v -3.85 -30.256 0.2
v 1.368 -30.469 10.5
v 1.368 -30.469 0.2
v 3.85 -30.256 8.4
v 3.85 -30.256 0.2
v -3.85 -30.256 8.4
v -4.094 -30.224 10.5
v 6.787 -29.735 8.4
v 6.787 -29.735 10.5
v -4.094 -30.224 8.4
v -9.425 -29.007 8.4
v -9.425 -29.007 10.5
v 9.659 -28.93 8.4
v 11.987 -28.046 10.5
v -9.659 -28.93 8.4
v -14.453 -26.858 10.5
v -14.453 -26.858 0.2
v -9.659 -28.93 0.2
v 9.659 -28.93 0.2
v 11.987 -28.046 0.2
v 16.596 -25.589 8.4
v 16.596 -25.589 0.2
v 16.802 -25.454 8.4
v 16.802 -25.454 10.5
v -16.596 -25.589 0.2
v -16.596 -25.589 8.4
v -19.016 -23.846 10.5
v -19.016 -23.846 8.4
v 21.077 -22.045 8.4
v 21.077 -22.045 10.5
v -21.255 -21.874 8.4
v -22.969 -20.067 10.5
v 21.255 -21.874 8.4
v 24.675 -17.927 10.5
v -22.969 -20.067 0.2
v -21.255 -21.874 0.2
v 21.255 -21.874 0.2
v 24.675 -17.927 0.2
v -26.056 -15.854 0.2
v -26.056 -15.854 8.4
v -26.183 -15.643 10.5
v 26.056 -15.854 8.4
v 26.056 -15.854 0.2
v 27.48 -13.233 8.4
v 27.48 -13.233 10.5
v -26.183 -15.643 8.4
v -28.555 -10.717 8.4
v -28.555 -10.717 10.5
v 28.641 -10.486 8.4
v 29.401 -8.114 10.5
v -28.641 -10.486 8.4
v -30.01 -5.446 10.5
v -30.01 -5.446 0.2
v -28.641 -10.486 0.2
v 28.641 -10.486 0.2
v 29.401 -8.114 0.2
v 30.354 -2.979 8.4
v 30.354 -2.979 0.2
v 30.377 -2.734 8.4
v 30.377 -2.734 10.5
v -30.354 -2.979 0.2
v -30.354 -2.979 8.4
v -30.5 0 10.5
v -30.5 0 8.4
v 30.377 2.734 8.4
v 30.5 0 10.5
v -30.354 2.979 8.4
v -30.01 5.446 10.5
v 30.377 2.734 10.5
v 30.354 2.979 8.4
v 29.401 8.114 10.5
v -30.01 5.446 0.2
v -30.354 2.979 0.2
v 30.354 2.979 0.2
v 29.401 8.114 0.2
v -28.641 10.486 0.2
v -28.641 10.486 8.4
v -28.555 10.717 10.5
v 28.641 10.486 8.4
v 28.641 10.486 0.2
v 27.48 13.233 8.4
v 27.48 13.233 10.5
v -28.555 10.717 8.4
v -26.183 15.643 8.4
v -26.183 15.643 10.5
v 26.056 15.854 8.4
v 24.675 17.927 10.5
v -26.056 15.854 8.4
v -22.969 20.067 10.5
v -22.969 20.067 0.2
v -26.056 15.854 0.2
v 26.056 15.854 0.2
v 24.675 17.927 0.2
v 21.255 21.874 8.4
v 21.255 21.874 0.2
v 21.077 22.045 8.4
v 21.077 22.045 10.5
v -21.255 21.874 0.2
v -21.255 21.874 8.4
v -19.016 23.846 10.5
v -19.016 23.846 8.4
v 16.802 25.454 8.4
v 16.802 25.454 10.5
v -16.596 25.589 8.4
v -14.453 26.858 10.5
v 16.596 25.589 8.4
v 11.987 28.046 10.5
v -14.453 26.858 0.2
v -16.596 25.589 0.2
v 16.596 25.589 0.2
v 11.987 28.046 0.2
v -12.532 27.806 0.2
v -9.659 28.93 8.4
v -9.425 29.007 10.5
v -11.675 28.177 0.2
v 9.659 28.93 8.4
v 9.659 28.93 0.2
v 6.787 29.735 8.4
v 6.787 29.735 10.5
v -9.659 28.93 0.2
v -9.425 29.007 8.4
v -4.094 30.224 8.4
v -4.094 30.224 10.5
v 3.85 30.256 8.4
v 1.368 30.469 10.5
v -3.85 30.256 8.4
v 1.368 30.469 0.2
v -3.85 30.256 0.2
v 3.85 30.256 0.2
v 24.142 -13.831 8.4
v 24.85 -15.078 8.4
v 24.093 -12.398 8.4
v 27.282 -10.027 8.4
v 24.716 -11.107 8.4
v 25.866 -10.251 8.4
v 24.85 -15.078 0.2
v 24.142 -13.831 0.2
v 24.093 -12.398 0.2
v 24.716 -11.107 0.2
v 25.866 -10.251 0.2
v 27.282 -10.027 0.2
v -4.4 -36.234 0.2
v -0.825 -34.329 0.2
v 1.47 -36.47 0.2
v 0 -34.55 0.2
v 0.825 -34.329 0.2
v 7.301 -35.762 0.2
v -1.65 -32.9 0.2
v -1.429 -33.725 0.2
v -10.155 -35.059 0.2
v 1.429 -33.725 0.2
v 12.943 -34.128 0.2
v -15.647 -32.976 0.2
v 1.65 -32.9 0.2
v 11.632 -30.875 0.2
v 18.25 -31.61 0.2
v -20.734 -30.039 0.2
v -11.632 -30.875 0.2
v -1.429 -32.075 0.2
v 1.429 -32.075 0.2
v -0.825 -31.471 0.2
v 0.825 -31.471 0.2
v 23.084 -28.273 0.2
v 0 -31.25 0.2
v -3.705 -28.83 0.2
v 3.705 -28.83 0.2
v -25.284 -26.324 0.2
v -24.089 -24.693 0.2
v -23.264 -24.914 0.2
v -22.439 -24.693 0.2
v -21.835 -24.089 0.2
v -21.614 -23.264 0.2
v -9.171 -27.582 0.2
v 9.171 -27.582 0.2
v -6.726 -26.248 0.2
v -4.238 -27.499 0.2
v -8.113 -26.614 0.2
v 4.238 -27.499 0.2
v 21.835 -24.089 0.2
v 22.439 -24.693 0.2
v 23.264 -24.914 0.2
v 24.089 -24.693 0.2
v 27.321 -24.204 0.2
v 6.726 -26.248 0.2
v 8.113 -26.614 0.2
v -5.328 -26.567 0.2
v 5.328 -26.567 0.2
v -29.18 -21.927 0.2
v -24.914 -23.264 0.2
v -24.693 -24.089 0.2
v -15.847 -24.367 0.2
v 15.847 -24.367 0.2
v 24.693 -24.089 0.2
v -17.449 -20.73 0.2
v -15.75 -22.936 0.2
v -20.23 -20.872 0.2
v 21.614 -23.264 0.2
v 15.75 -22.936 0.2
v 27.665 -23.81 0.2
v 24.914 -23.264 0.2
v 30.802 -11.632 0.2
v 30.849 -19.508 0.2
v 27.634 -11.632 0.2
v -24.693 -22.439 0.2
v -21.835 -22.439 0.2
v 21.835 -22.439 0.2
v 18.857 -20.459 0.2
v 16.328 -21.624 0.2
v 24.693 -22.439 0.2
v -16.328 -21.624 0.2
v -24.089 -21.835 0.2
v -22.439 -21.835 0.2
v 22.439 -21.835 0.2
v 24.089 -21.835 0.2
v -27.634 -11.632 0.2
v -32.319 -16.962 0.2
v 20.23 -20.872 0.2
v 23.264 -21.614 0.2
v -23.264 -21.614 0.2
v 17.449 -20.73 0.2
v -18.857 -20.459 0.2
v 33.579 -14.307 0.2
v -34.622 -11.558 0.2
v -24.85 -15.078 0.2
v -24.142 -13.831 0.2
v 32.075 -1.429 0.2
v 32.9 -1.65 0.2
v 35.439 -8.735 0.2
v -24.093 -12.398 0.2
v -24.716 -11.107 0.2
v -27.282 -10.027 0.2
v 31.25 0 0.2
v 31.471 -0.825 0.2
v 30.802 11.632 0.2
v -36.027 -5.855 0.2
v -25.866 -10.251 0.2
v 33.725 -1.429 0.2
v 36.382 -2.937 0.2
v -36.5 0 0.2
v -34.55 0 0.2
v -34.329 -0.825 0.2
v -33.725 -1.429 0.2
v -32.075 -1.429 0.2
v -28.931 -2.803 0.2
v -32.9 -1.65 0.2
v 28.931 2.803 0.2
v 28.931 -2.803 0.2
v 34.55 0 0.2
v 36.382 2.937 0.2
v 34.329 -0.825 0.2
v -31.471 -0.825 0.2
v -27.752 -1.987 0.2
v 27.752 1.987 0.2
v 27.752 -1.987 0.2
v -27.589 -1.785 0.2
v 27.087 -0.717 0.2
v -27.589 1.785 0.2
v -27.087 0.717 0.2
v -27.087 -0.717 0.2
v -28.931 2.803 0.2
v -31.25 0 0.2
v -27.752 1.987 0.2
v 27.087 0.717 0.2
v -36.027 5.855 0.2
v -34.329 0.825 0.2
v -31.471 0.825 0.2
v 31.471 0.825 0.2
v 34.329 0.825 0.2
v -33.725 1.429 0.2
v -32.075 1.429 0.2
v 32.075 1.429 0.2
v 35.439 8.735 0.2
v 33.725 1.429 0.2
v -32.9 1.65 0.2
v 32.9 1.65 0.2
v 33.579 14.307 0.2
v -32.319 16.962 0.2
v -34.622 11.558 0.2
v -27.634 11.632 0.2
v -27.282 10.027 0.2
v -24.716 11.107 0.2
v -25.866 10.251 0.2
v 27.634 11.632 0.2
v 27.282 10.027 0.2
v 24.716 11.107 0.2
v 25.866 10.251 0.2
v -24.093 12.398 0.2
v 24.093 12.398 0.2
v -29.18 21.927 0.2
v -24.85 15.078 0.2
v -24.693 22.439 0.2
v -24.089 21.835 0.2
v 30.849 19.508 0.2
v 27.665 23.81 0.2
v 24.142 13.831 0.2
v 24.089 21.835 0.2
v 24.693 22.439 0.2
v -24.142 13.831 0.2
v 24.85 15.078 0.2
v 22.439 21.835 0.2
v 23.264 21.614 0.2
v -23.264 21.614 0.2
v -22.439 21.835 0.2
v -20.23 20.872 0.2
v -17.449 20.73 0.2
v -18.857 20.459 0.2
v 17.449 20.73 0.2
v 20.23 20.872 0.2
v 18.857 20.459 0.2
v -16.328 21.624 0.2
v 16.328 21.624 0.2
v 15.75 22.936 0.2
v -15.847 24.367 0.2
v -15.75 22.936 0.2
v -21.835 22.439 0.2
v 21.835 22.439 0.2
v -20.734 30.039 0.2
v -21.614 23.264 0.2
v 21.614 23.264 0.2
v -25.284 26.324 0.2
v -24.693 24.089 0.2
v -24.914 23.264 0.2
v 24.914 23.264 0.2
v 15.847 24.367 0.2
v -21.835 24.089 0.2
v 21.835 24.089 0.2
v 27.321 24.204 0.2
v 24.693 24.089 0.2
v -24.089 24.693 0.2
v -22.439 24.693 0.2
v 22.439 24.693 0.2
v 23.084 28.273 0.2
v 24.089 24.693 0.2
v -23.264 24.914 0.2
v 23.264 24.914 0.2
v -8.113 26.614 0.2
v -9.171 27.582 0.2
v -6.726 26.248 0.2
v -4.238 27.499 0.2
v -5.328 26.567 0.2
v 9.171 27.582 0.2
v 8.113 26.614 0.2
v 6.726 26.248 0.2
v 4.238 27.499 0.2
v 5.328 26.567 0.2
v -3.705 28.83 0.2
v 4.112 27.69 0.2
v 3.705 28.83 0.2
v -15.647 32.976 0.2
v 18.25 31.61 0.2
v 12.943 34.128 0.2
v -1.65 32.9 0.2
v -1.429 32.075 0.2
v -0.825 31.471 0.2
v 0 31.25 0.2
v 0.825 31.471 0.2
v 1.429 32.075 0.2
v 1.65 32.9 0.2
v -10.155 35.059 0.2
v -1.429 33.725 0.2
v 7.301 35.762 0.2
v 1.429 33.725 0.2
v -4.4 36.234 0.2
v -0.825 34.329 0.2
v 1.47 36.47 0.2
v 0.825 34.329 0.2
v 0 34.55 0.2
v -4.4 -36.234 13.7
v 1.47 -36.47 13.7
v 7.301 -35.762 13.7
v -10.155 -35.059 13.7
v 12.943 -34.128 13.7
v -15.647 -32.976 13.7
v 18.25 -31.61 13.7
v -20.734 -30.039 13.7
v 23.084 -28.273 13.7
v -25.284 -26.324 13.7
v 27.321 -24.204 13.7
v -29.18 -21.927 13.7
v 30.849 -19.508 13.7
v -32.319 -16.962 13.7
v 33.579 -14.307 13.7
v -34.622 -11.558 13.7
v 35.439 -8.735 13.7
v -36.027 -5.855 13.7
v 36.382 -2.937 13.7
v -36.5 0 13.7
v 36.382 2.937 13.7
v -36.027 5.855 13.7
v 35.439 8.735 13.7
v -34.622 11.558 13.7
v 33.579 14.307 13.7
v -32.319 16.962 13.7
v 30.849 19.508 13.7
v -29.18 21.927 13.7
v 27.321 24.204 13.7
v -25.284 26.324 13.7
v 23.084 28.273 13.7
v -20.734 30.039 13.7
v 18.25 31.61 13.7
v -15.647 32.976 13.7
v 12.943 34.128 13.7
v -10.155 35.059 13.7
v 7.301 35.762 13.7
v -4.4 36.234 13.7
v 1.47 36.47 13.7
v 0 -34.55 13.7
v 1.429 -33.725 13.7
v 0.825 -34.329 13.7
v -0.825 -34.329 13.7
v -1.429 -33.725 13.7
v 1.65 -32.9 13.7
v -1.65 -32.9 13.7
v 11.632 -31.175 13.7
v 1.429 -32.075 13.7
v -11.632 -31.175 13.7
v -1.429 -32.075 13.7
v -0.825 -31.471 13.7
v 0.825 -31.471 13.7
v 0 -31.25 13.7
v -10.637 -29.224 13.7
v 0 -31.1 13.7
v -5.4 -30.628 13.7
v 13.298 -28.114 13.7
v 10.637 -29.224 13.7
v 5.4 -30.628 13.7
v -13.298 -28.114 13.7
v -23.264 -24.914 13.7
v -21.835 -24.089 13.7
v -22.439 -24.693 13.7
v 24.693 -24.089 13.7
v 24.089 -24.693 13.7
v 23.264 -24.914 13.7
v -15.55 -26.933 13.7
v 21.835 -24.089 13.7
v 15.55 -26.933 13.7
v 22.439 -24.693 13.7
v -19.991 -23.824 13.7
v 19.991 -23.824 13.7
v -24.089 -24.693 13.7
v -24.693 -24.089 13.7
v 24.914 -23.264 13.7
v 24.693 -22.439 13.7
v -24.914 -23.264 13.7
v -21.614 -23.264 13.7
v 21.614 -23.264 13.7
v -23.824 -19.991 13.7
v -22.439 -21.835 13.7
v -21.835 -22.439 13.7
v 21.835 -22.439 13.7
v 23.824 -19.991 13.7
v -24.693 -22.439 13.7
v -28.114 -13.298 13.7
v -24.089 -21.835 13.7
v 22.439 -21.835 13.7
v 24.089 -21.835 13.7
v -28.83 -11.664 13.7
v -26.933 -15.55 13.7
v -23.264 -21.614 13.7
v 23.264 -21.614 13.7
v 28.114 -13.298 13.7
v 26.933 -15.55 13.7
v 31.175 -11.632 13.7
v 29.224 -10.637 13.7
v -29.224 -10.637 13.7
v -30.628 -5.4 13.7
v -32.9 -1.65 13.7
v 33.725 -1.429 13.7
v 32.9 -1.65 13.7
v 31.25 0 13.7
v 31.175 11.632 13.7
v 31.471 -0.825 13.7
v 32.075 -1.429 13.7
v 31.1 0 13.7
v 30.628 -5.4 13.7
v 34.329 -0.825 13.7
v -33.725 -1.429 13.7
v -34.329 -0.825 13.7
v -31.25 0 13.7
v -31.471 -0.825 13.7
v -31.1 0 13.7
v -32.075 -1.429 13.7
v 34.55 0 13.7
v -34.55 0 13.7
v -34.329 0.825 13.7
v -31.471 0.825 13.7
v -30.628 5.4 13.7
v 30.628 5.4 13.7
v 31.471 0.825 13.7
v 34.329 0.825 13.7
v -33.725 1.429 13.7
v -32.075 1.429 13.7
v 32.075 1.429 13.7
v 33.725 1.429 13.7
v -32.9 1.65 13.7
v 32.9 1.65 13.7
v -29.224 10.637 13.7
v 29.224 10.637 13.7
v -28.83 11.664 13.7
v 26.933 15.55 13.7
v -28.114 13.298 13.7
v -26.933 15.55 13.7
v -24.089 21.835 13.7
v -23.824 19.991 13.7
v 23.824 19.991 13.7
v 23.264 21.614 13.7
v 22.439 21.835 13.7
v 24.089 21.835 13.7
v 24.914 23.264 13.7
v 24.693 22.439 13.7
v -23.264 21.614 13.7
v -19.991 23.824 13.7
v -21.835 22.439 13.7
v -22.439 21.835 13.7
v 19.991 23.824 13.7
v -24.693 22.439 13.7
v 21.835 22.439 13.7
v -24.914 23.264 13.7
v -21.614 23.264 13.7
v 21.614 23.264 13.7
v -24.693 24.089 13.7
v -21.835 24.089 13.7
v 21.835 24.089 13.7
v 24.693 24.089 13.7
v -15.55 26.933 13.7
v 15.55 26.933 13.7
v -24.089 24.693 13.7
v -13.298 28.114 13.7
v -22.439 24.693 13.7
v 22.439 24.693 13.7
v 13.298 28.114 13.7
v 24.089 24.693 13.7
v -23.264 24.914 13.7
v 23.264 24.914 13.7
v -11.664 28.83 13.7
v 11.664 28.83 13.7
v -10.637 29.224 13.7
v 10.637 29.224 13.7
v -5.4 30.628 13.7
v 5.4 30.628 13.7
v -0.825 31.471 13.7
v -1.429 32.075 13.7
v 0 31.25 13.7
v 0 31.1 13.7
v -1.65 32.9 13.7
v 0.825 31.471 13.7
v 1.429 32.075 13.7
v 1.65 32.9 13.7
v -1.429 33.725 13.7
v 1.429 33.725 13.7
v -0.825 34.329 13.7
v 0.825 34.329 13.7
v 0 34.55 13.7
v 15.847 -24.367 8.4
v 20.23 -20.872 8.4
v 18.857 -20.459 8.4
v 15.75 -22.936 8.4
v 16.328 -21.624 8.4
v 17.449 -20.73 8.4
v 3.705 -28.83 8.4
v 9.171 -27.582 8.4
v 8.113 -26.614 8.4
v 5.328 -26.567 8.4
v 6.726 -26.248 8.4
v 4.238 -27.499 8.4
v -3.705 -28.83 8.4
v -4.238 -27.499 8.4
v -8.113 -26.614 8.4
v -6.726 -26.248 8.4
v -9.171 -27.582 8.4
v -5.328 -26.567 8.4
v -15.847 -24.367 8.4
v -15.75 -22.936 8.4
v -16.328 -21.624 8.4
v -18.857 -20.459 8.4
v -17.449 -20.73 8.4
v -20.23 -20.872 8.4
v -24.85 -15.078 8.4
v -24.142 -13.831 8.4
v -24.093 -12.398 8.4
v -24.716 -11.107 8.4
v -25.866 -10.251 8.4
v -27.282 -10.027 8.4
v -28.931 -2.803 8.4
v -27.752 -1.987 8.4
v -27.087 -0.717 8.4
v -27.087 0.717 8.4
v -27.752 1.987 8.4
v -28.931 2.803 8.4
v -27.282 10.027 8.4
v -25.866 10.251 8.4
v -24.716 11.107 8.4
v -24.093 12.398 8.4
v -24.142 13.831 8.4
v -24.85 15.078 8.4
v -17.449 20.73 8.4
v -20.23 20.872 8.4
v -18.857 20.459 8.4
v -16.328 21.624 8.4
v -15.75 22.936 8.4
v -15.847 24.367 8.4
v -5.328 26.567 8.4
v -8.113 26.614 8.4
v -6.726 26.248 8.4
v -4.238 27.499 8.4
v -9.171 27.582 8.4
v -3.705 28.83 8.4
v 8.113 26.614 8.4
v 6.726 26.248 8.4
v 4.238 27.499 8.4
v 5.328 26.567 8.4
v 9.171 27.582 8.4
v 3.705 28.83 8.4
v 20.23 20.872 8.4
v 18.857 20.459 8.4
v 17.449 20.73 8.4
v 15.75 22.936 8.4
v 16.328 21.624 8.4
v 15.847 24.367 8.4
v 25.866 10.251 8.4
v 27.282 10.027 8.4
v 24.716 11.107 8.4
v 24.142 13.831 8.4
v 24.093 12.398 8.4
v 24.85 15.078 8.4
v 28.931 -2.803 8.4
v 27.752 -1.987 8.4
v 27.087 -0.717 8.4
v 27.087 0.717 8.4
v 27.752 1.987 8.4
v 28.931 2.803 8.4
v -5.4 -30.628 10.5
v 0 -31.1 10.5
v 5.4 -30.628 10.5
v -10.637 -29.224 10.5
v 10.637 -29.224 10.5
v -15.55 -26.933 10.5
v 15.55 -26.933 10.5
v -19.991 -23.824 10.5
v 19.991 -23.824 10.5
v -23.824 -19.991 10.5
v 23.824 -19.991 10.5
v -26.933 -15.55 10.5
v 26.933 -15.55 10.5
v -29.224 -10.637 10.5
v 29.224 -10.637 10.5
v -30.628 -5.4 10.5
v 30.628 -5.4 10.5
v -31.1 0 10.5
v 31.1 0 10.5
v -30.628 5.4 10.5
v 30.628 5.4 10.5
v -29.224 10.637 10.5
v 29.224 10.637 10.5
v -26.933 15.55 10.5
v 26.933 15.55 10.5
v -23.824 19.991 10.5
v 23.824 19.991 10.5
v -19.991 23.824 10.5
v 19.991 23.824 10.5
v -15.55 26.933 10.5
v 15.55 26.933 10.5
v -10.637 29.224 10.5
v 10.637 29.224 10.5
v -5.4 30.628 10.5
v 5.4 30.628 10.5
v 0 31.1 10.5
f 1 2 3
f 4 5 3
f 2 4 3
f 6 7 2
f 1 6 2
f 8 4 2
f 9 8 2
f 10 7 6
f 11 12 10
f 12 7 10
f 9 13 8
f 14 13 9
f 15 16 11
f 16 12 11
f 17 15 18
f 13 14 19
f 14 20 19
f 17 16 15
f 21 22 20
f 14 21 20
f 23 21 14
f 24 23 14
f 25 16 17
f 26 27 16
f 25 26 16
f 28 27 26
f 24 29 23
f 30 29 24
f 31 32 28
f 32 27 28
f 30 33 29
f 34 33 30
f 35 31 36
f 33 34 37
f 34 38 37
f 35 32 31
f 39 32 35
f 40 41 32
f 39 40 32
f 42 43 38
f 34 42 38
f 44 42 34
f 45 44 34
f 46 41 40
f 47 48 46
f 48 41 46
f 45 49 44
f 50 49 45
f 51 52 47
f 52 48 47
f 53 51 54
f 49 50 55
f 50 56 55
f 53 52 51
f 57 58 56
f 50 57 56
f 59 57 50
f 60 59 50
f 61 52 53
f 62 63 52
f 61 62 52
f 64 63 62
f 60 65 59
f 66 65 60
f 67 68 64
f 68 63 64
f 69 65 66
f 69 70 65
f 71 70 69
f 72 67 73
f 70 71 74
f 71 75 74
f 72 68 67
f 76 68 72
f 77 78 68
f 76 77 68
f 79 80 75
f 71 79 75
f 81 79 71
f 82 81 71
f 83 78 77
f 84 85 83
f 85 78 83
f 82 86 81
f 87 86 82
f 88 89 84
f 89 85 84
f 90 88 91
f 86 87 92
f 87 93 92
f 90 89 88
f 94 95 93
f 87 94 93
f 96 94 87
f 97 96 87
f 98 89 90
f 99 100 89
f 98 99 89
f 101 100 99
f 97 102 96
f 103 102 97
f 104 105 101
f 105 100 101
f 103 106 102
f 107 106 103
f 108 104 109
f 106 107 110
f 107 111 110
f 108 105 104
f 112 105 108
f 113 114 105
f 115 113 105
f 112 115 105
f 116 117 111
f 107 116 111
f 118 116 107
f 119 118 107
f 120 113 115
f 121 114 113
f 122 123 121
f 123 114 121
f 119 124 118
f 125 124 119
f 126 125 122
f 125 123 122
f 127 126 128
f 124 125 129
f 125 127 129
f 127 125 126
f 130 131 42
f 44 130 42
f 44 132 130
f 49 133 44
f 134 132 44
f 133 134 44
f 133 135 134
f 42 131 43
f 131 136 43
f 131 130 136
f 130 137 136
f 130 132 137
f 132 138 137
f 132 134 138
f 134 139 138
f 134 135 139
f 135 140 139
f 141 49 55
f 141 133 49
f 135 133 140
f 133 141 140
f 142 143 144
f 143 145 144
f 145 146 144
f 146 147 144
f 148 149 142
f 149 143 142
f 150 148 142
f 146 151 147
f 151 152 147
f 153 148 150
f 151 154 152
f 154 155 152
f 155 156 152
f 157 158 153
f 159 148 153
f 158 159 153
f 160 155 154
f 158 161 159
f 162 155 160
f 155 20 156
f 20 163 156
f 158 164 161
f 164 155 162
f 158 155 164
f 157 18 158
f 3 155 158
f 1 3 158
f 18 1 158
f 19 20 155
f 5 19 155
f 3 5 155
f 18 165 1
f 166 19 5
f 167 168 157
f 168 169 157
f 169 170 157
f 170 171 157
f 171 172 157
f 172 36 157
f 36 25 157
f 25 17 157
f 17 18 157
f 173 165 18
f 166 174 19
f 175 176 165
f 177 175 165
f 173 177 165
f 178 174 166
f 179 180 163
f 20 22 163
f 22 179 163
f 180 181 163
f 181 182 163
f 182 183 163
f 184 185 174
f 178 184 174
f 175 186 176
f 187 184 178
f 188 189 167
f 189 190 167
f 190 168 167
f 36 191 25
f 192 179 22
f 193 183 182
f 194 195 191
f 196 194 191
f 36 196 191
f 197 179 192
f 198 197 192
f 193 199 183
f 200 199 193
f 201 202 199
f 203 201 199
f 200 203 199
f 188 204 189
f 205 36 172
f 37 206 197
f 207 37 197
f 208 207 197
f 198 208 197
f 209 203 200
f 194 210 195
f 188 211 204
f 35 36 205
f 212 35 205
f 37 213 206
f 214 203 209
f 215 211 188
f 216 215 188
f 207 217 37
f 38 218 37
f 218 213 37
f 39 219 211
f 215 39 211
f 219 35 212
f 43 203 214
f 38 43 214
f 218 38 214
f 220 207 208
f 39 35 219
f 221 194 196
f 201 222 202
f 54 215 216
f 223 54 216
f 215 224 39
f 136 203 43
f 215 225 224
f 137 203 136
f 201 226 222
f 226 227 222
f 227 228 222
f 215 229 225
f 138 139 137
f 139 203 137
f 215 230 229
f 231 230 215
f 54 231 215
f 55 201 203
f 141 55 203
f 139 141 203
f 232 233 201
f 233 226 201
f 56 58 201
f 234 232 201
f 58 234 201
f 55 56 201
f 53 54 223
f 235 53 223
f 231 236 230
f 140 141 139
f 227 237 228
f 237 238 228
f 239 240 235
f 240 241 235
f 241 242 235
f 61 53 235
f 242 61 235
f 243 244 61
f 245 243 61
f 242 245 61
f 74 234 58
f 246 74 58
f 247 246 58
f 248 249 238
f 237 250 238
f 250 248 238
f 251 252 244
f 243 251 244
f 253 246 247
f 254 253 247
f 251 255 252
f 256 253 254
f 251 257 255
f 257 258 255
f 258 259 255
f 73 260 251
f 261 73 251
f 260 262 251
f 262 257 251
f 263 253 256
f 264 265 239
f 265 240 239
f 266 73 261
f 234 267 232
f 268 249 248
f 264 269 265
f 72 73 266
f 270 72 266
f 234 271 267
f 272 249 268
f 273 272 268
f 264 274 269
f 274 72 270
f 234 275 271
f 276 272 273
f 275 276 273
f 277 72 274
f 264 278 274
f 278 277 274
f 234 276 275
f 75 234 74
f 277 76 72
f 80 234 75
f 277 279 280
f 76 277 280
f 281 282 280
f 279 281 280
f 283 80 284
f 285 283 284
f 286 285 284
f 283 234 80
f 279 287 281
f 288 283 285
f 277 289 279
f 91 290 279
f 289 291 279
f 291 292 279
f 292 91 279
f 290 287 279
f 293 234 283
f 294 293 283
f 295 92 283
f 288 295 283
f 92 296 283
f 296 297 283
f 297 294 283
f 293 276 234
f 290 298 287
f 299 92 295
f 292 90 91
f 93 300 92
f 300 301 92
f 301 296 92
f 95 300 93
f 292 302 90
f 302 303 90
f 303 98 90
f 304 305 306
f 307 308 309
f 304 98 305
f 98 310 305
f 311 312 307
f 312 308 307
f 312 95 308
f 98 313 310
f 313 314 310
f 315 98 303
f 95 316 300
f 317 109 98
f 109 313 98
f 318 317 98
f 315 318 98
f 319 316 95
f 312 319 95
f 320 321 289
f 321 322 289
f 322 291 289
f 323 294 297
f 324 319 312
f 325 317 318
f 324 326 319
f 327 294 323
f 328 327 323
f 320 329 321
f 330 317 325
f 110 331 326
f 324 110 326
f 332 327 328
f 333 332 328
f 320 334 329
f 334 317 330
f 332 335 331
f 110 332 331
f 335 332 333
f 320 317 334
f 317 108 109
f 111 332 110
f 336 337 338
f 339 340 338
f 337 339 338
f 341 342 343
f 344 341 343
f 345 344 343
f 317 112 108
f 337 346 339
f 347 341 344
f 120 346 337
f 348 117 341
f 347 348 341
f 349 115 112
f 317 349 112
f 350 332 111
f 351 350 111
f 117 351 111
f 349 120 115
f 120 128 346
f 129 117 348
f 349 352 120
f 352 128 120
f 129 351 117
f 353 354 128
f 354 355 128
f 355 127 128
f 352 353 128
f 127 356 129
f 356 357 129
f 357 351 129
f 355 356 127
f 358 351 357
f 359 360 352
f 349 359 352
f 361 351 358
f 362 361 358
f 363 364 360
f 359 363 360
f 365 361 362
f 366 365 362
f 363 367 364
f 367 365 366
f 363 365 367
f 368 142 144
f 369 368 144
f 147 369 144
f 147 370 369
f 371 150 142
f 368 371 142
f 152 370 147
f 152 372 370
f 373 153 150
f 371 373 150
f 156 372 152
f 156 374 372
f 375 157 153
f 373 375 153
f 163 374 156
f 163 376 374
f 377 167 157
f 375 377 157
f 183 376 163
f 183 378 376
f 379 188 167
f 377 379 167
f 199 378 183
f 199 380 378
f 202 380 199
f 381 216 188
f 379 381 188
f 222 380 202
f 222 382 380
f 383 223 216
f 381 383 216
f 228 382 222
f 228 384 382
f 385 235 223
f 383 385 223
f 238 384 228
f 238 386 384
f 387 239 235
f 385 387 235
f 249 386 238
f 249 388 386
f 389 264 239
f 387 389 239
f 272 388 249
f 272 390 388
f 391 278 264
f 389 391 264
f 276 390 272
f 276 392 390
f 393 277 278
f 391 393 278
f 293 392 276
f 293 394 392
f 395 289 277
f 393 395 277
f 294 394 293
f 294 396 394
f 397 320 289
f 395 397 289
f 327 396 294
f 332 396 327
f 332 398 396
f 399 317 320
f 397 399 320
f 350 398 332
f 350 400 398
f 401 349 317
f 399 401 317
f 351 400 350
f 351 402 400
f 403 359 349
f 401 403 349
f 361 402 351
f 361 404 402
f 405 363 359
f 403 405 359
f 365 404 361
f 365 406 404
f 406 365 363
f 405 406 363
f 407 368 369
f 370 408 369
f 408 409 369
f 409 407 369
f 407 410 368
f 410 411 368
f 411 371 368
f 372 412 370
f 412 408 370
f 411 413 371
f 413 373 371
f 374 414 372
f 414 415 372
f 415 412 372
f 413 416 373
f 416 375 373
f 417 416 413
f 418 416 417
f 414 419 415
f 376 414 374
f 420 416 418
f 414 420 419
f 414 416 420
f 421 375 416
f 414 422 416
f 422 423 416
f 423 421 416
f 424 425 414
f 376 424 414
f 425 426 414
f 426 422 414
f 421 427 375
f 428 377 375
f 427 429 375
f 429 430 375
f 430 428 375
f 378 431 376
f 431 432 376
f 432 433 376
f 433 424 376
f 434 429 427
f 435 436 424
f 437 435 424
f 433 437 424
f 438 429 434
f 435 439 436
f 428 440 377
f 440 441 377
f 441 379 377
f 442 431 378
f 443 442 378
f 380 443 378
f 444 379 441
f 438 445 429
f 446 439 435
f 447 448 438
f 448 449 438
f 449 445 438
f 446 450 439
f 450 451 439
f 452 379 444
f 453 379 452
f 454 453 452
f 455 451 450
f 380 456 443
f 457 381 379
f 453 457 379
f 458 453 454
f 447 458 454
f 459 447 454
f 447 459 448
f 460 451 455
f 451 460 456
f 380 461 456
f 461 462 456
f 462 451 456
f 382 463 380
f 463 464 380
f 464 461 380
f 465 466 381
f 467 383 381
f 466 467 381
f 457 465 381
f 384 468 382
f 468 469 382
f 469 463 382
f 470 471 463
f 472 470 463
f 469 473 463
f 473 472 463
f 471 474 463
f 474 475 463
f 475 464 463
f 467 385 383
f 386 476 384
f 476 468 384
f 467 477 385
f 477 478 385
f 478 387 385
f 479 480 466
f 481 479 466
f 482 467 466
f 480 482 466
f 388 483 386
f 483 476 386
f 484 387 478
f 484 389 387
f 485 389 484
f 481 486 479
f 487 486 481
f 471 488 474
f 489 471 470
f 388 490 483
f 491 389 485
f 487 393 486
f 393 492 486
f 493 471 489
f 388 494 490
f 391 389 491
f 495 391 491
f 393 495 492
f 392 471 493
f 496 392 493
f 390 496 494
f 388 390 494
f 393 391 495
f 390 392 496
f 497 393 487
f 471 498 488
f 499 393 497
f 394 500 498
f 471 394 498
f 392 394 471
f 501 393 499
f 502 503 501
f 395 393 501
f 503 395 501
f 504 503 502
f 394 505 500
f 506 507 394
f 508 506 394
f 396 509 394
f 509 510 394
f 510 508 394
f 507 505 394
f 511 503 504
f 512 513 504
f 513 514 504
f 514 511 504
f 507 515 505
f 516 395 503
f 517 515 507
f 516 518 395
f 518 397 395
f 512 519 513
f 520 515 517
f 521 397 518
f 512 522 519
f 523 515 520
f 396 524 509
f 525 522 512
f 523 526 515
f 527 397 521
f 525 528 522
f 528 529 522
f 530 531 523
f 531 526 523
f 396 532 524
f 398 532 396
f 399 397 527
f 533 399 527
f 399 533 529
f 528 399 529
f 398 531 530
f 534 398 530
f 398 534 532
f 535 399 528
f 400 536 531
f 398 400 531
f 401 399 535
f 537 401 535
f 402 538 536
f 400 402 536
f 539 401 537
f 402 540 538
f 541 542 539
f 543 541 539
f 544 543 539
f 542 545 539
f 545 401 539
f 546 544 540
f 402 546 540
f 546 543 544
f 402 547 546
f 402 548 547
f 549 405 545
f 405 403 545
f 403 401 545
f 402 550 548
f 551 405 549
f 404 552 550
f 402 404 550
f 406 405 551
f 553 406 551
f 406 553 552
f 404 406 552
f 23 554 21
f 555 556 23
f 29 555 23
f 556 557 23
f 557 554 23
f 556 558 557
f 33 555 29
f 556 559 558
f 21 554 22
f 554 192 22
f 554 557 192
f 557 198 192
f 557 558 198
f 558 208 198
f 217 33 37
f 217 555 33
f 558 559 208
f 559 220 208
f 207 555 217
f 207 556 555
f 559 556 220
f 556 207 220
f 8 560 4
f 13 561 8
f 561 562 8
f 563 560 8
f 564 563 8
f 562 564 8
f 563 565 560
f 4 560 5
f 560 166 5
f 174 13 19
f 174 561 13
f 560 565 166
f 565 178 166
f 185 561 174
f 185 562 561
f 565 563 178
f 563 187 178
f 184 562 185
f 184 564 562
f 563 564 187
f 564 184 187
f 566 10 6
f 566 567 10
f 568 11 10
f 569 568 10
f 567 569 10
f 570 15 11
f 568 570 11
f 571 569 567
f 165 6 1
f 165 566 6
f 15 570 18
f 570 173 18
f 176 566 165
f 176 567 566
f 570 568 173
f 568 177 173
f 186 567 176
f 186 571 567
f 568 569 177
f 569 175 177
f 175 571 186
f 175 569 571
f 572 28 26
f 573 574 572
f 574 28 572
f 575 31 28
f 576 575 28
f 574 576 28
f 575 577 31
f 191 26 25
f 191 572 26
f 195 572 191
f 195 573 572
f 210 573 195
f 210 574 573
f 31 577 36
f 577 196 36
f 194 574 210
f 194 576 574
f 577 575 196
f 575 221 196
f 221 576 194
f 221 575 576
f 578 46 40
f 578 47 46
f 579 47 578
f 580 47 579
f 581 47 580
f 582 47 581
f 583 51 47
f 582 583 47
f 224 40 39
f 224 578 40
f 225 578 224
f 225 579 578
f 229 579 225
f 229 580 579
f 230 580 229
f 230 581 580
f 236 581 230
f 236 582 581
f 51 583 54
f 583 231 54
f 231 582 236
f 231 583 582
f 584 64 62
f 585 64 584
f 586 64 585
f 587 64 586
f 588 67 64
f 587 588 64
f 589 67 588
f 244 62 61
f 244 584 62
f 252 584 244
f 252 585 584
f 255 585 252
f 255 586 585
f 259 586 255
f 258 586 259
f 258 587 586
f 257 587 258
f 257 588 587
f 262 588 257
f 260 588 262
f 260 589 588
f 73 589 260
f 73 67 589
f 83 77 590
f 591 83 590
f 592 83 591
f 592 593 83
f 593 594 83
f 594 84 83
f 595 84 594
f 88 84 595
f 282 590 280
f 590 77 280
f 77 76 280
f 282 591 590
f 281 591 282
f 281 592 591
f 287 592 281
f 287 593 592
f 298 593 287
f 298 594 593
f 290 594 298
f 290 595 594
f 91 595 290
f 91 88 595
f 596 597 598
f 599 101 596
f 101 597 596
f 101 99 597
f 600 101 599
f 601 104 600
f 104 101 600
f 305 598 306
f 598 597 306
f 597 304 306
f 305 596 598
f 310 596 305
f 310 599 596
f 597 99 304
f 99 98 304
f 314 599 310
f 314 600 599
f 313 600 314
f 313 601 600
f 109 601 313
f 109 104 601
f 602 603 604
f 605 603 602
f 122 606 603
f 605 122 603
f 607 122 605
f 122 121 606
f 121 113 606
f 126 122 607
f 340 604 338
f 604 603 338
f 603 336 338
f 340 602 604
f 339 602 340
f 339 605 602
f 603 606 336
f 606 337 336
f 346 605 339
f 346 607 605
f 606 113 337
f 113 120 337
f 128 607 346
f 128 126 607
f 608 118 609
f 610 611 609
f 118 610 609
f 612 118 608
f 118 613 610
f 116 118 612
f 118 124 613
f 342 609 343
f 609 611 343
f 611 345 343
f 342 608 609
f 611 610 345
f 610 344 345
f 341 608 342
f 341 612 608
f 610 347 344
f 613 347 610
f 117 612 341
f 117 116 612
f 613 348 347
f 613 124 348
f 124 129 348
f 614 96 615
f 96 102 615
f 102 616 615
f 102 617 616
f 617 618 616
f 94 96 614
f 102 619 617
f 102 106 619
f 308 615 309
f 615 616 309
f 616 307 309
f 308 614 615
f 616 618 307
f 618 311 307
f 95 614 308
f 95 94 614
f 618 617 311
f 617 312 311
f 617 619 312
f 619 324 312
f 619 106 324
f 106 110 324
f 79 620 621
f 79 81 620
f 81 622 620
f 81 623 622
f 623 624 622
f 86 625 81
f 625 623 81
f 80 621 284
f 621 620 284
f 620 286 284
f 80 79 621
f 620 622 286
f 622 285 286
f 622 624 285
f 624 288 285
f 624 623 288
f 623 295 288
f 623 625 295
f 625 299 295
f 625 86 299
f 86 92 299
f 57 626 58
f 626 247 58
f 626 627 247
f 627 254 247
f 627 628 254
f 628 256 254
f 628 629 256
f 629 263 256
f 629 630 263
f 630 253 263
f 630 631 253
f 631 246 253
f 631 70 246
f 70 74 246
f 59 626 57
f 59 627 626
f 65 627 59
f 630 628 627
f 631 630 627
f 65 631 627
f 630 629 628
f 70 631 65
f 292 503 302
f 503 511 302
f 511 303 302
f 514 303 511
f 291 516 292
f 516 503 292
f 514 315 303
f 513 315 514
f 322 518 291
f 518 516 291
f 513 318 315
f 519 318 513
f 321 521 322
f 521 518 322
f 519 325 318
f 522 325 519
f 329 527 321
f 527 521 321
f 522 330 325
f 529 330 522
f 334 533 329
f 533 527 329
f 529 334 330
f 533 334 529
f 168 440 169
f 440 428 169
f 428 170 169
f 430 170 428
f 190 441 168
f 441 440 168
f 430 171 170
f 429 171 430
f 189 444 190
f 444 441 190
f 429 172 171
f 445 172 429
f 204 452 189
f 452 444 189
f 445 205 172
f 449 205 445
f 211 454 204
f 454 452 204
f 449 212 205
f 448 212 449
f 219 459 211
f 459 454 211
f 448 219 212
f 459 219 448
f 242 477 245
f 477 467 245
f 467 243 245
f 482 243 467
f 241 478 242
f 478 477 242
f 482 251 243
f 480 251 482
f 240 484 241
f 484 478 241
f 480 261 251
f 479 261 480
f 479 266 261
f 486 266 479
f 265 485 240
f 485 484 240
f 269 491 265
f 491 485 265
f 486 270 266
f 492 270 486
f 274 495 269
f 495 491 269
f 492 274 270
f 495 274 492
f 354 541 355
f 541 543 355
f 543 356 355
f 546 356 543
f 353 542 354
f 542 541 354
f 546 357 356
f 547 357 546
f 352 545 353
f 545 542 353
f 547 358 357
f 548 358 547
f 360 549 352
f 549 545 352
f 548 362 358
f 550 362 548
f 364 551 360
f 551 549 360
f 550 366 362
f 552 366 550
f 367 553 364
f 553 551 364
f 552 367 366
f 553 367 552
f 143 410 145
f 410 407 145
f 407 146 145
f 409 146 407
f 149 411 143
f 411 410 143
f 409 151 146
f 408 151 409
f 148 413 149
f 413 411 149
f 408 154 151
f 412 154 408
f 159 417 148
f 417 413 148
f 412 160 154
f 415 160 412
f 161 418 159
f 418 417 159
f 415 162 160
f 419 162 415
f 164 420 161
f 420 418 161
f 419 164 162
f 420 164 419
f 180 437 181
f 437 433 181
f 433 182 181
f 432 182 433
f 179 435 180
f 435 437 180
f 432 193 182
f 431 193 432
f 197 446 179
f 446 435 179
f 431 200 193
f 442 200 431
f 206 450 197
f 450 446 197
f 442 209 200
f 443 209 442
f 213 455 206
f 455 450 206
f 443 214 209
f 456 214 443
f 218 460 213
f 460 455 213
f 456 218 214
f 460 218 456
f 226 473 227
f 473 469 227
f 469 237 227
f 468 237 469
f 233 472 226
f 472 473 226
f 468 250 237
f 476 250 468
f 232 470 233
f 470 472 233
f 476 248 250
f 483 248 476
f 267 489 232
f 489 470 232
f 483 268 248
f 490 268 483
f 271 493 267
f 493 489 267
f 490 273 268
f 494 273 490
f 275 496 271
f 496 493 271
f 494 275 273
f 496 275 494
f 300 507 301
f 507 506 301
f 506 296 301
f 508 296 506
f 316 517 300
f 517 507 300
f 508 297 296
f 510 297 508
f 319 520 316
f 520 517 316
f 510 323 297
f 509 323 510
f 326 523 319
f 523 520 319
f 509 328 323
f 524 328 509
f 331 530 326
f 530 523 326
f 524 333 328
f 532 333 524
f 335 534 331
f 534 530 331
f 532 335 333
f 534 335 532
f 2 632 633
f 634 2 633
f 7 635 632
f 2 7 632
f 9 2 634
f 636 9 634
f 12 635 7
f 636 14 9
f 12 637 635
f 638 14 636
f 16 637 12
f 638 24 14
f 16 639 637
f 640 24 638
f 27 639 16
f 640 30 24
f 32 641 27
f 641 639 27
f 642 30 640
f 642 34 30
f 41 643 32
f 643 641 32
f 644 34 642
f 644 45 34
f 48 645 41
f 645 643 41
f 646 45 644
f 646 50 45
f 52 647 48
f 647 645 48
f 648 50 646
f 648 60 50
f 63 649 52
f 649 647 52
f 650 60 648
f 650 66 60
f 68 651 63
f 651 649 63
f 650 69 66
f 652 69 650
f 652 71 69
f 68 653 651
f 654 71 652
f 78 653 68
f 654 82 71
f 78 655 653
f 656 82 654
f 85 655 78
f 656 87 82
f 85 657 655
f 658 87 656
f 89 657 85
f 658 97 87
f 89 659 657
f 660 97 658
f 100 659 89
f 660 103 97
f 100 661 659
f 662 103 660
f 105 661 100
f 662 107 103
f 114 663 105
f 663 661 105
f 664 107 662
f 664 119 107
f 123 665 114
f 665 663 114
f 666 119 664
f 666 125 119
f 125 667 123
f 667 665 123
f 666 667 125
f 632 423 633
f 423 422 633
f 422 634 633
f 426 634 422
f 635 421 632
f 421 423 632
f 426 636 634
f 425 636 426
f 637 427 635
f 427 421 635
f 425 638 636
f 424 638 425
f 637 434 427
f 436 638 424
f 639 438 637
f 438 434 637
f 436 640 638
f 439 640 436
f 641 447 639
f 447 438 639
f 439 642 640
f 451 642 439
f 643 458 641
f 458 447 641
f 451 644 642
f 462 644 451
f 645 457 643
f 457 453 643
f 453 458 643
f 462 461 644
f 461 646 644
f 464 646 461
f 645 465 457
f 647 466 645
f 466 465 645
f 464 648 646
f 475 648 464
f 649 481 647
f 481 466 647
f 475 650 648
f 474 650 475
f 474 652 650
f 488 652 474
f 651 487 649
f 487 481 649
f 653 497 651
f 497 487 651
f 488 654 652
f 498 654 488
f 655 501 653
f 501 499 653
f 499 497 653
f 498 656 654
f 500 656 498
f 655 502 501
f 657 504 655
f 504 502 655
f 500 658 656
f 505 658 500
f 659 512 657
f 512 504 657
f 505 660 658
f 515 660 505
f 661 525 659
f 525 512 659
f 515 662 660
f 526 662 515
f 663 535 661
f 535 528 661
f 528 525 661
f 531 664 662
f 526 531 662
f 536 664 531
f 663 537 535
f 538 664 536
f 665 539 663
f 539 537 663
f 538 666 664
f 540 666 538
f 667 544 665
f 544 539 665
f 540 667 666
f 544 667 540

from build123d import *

# Parameters (mm, degrees)
PINSBASEEXTRUDE_DEPTH      = 0.2
PINSBASEEXTRUDE_DEPTH_BACK = 0.2
PINSBASESKETCH_R           = 33
PINSEXTRUDE_START          = -0.2
PINSSKETCH_R               = 3
PINSEXTRUDE_DEPTH          = 8.6
PINSPATTERN_COUNT          = 14
BOREREVOLVESKETCH_W        = 4
BOREREVOLVESKETCH_H        = 7.5
SKETCH_4_R                 = 33
CUT_EXTRUDE_1_DEPTH        = 0.4
SKETCH_5_R                 = 36.5
SKETCH_5_R_2               = 30.5
EXTRUDE_3_DEPTH            = 13.5
CUT_EXTRUDE_2_REACH        = 55.355
SKETCH_6_R                 = 1.65
SKETCH_8_R                 = 31.1
CUT_EXTRUDE_3_DEPTH        = 3.2


with BuildPart() as part:
    # PinsBaseSketch → PinsBaseExtrude (new, two sides: drawn at the far end of the back side and taken through both)
    with BuildSketch(Plane.XY.offset(-PINSBASEEXTRUDE_DEPTH_BACK)):
        Circle(PINSBASESKETCH_R)
    extrude(amount=PINSBASEEXTRUDE_DEPTH + PINSBASEEXTRUDE_DEPTH_BACK)

    # PinsSketch → PinsExtrude (add)
    with BuildSketch(Plane.XY.offset(PINSEXTRUDE_START)):
        with Locations((30, 0)):
            Circle(PINSSKETCH_R)
    pinsextrude = extrude(amount=PINSEXTRUDE_DEPTH)

    # PinsPattern: PinsExtrude ×14 about axis
    pinspattern_axis = Axis((0, 0, 55), (0, 0, -1))
    for i in range(1, PINSPATTERN_COUNT):
        add(pinsextrude.rotate(pinspattern_axis, i * 360 / PINSPATTERN_COUNT))

    # BoreRevolveSketch → BoreRevolveCut (revolve, cut)
    with BuildSketch(Plane(origin=(0, 0, 0), x_dir=(0, 0, -1), z_dir=(1, 0, 0))):
        with Locations((0, 3.75)):
            Rectangle(BOREREVOLVESKETCH_W, BOREREVOLVESKETCH_H)
    revolve(axis=Axis((0, 0, 0), (0, 0, -1)), mode=Mode.SUBTRACT)

    # 草图4 → 切除-拉伸1 (cut)
    with BuildSketch(Plane(origin=(0, 0, -0.2), x_dir=(-1, 0, 0), z_dir=(0, 0, -1))):
        Circle(SKETCH_4_R)
    extrude(amount=-CUT_EXTRUDE_1_DEPTH, mode=Mode.SUBTRACT)


with BuildPart() as cut_extrude_1_piece_1:
    # of the separate pieces the step leaves, piece 1, a body of its own (cut_extrude_1_pieces)
    add(part.part.solids().sort_by_distance((7.343190821, 32.172621102, 0.2))[0])



with BuildPart() as cut_extrude_1_piece_2:
    # of the separate pieces the step leaves, piece 2, a body of its own (cut_extrude_1_pieces)
    add(part.part.solids().sort_by_distance((20.575163461, -25.800438921, 0.2))[0])


with BuildPart() as cut_extrude_1_piece_3:
    # of the separate pieces the step leaves, piece 3, a body of its own (cut_extrude_1_pieces)
    add(part.part.solids().sort_by_distance((-7.343190821, 32.172621102, 0.2))[0])


with BuildPart() as cut_extrude_1_piece_4:
    # of the separate pieces the step leaves, piece 4, a body of its own (cut_extrude_1_pieces)
    add(part.part.solids().sort_by_distance((20.575163461, 25.800438921, 0.2))[0])


with BuildPart() as cut_extrude_1_piece_5:
    # of the separate pieces the step leaves, piece 5, a body of its own (cut_extrude_1_pieces)
    add(part.part.solids().sort_by_distance((29.731972641, 14.318163391, 0.2))[0])


with BuildPart() as cut_extrude_1_piece_6:
    # of the separate pieces the step leaves, piece 6, a body of its own (cut_extrude_1_pieces)
    add(part.part.solids().sort_by_distance((-7.343190821, -32.172621102, 0.2))[0])


with BuildPart() as cut_extrude_1_piece_7:
    # of the separate pieces the step leaves, piece 7, a body of its own (cut_extrude_1_pieces)
    add(part.part.solids().sort_by_distance((7.343190821, -32.172621102, 0.2))[0])


with BuildPart() as cut_extrude_1_piece_8:
    # of the separate pieces the step leaves, piece 8, a body of its own (cut_extrude_1_pieces)
    add(part.part.solids().sort_by_distance((29.731972641, -14.318163391, 0.2))[0])


with BuildPart() as cut_extrude_1_piece_9:
    # of the separate pieces the step leaves, piece 9, a body of its own (cut_extrude_1_pieces)
    add(part.part.solids().sort_by_distance((-29.731972641, -14.318163391, 0.2))[0])


with BuildPart() as cut_extrude_1_piece_10:
    # of the separate pieces the step leaves, piece 10, a body of its own (cut_extrude_1_pieces)
    add(part.part.solids().sort_by_distance((33, 0, 0.2))[0])


with BuildPart() as cut_extrude_1_piece_11:
    # of the separate pieces the step leaves, piece 11, a body of its own (cut_extrude_1_pieces)
    add(part.part.solids().sort_by_distance((-20.575163461, 25.800438921, 0.2))[0])


with BuildPart() as cut_extrude_1_piece_12:
    # of the separate pieces the step leaves, piece 12, a body of its own (cut_extrude_1_pieces)
    add(part.part.solids().sort_by_distance((-20.575163461, -25.800438921, 0.2))[0])


with BuildPart() as cut_extrude_1_piece_13:
    # of the separate pieces the step leaves, piece 13, a body of its own (cut_extrude_1_pieces)
    add(part.part.solids().sort_by_distance((-33, 0, 0.2))[0])


with BuildPart() as cut_extrude_1_piece_14:
    # of the separate pieces the step leaves, piece 14, a body of its own (cut_extrude_1_pieces)
    add(part.part.solids().sort_by_distance((-29.731972641, 14.318163391, 0.2))[0])


with BuildPart() as cut_extrude_1_piece_1_1:
    add(cut_extrude_1_piece_1.part)

    add(cut_extrude_1_piece_2.part)  # 凸台-拉伸3 merges 切除-拉伸1 piece 2

    add(cut_extrude_1_piece_3.part)  # 凸台-拉伸3 merges 切除-拉伸1 piece 3

    add(cut_extrude_1_piece_4.part)  # 凸台-拉伸3 merges 切除-拉伸1 piece 4

    add(cut_extrude_1_piece_5.part)  # 凸台-拉伸3 merges 切除-拉伸1 piece 5

    add(cut_extrude_1_piece_6.part)  # 凸台-拉伸3 merges 切除-拉伸1 piece 6

    add(cut_extrude_1_piece_7.part)  # 凸台-拉伸3 merges 切除-拉伸1 piece 7

    add(cut_extrude_1_piece_8.part)  # 凸台-拉伸3 merges 切除-拉伸1 piece 8

    add(cut_extrude_1_piece_9.part)  # 凸台-拉伸3 merges 切除-拉伸1 piece 9

    add(cut_extrude_1_piece_10.part)  # 凸台-拉伸3 merges 切除-拉伸1 piece 10

    add(cut_extrude_1_piece_11.part)  # 凸台-拉伸3 merges 切除-拉伸1 piece 11

    add(cut_extrude_1_piece_12.part)  # 凸台-拉伸3 merges 切除-拉伸1 piece 12

    add(cut_extrude_1_piece_13.part)  # 凸台-拉伸3 merges 切除-拉伸1 piece 13

    add(cut_extrude_1_piece_14.part)  # 凸台-拉伸3 merges 切除-拉伸1 piece 14
    # 草图5 → 凸台-拉伸3 (add)
    with BuildSketch(Plane(origin=(0, 0, 0.2), x_dir=(-1, 0, 0), z_dir=(0, 0, -1))):
        Circle(SKETCH_5_R)
        Circle(SKETCH_5_R_2, mode=Mode.SUBTRACT)
    extrude(amount=-EXTRUDE_3_DEPTH)

    # 草图6 → 切除-拉伸2 (cut, up to next)
    with BuildSketch(Plane.XY.offset(13.7), mode=Mode.PRIVATE) as cut_extrude_2_sk1:
        with Locations((32.899998742, 1.194e-06)):
            Circle(SKETCH_6_R)
    cut_extrude_2_tool1 = extrude(cut_extrude_2_sk1.sketch, amount=-CUT_EXTRUDE_2_REACH, mode=Mode.PRIVATE) & cut_extrude_1_piece_1_1.part
    # 草图6 → 切除-拉伸2 (cut, up to next)
    with BuildSketch(Plane.XY.offset(13.7), mode=Mode.PRIVATE) as cut_extrude_2_sk2:
        with Locations((23.263811843, -23.263811907)):
            Circle(SKETCH_6_R)
    cut_extrude_2_tool2 = extrude(cut_extrude_2_sk2.sketch, amount=-CUT_EXTRUDE_2_REACH, mode=Mode.PRIVATE) & cut_extrude_1_piece_1_1.part
    # 草图6 → 切除-拉伸2 (cut, up to next)
    with BuildSketch(Plane.XY.offset(13.7), mode=Mode.PRIVATE) as cut_extrude_2_sk3:
        with Locations((-1.258e-06, -32.899998806)):
            Circle(SKETCH_6_R)
    cut_extrude_2_tool3 = extrude(cut_extrude_2_sk3.sketch, amount=-CUT_EXTRUDE_2_REACH, mode=Mode.PRIVATE) & cut_extrude_1_piece_1_1.part
    # 草图6 → 切除-拉伸2 (cut, up to next)
    with BuildSketch(Plane.XY.offset(13.7), mode=Mode.PRIVATE) as cut_extrude_2_sk4:
        with Locations((-23.263814359, -23.263811907)):
            Circle(SKETCH_6_R)
    cut_extrude_2_tool4 = extrude(cut_extrude_2_sk4.sketch, amount=-CUT_EXTRUDE_2_REACH, mode=Mode.PRIVATE) & cut_extrude_1_piece_1_1.part
    # 草图6 → 切除-拉伸2 (cut, up to next)
    with BuildSketch(Plane.XY.offset(13.7), mode=Mode.PRIVATE) as cut_extrude_2_sk5:
        with Locations((-32.900001258, 1.194e-06)):
            Circle(SKETCH_6_R)
    cut_extrude_2_tool5 = extrude(cut_extrude_2_sk5.sketch, amount=-CUT_EXTRUDE_2_REACH, mode=Mode.PRIVATE) & cut_extrude_1_piece_1_1.part
    # 草图6 → 切除-拉伸2 (cut, up to next)
    with BuildSketch(Plane.XY.offset(13.7), mode=Mode.PRIVATE) as cut_extrude_2_sk6:
        with Locations((-23.263814359, 23.263814295)):
            Circle(SKETCH_6_R)
    cut_extrude_2_tool6 = extrude(cut_extrude_2_sk6.sketch, amount=-CUT_EXTRUDE_2_REACH, mode=Mode.PRIVATE) & cut_extrude_1_piece_1_1.part
    # 草图6 → 切除-拉伸2 (cut, up to next)
    with BuildSketch(Plane.XY.offset(13.7), mode=Mode.PRIVATE) as cut_extrude_2_sk7:
        with Locations((-1.258e-06, 32.900001194)):
            Circle(SKETCH_6_R)
    cut_extrude_2_tool7 = extrude(cut_extrude_2_sk7.sketch, amount=-CUT_EXTRUDE_2_REACH, mode=Mode.PRIVATE) & cut_extrude_1_piece_1_1.part
    # 草图6 → 切除-拉伸2 (cut, up to next)
    with BuildSketch(Plane.XY.offset(13.7), mode=Mode.PRIVATE) as cut_extrude_2_sk8:
        with Locations((23.263811843, 23.263814295)):
            Circle(SKETCH_6_R)
    cut_extrude_2_tool8 = extrude(cut_extrude_2_sk8.sketch, amount=-CUT_EXTRUDE_2_REACH, mode=Mode.PRIVATE) & cut_extrude_1_piece_1_1.part
    add(cut_extrude_2_tool1.solids().sort_by_distance((32.899999, 1e-06, 13.7))[0], mode=Mode.SUBTRACT)
    add(cut_extrude_2_tool2.solids().sort_by_distance((23.263812, -23.263812, 13.7))[0], mode=Mode.SUBTRACT)
    add(cut_extrude_2_tool3.solids().sort_by_distance((-1e-06, -32.899999, 13.7))[0], mode=Mode.SUBTRACT)
    add(cut_extrude_2_tool4.solids().sort_by_distance((-23.263814, -23.263812, 13.7))[0], mode=Mode.SUBTRACT)
    add(cut_extrude_2_tool5.solids().sort_by_distance((-32.900001, 1e-06, 13.7))[0], mode=Mode.SUBTRACT)
    add(cut_extrude_2_tool6.solids().sort_by_distance((-23.263814, 23.263814, 13.7))[0], mode=Mode.SUBTRACT)
    add(cut_extrude_2_tool7.solids().sort_by_distance((-1e-06, 32.900001, 13.7))[0], mode=Mode.SUBTRACT)
    add(cut_extrude_2_tool8.solids().sort_by_distance((23.263812, 23.263814, 13.7))[0], mode=Mode.SUBTRACT)

    # 草图8 → 切除-拉伸3 (cut)
    with BuildSketch(Plane.XY.offset(13.7)):
        with Locations((-1.258e-06, 1.194e-06)):
            Circle(SKETCH_8_R)
    extrude(amount=-CUT_EXTRUDE_3_DEPTH, mode=Mode.SUBTRACT)


solid = cut_extrude_1_piece_1_1.part
